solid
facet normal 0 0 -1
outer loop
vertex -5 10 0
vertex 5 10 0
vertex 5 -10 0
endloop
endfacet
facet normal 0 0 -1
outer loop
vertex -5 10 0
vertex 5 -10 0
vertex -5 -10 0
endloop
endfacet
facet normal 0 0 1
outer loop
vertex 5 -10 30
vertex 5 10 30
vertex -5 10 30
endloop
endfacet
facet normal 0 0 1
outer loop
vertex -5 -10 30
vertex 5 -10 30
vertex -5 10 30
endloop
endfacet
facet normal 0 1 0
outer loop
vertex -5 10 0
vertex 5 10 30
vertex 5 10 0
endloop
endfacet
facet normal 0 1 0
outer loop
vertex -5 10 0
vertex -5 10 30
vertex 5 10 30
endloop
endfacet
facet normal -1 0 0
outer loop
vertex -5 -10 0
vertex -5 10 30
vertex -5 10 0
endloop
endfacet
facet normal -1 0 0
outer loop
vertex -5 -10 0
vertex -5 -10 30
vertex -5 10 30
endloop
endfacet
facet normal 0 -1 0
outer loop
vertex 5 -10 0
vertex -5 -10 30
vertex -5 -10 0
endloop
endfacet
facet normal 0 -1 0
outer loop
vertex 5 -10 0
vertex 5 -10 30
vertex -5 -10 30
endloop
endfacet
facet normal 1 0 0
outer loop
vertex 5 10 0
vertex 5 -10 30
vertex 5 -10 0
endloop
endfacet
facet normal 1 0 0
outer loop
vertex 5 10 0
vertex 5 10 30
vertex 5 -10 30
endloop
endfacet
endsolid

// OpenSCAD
translate([0.0, 0.0, 15.0])
{
    linear_extrude(height = 30.0, center = true, twist = 0.0, scale = 1.0, slices = 1, convexity = 1)
    {
        M14();
    }
}

module M14()
{
    scale([10.0, 20.0])
    {
        M8();
    }
}

module M8()
{
    polygon
    (
        points =
        [
            [0.5, -0.5], [0.5, 0.5], [-0.5, 0.5], [-0.5, -0.5]
        ]
        , convexity = 1
    );
}
